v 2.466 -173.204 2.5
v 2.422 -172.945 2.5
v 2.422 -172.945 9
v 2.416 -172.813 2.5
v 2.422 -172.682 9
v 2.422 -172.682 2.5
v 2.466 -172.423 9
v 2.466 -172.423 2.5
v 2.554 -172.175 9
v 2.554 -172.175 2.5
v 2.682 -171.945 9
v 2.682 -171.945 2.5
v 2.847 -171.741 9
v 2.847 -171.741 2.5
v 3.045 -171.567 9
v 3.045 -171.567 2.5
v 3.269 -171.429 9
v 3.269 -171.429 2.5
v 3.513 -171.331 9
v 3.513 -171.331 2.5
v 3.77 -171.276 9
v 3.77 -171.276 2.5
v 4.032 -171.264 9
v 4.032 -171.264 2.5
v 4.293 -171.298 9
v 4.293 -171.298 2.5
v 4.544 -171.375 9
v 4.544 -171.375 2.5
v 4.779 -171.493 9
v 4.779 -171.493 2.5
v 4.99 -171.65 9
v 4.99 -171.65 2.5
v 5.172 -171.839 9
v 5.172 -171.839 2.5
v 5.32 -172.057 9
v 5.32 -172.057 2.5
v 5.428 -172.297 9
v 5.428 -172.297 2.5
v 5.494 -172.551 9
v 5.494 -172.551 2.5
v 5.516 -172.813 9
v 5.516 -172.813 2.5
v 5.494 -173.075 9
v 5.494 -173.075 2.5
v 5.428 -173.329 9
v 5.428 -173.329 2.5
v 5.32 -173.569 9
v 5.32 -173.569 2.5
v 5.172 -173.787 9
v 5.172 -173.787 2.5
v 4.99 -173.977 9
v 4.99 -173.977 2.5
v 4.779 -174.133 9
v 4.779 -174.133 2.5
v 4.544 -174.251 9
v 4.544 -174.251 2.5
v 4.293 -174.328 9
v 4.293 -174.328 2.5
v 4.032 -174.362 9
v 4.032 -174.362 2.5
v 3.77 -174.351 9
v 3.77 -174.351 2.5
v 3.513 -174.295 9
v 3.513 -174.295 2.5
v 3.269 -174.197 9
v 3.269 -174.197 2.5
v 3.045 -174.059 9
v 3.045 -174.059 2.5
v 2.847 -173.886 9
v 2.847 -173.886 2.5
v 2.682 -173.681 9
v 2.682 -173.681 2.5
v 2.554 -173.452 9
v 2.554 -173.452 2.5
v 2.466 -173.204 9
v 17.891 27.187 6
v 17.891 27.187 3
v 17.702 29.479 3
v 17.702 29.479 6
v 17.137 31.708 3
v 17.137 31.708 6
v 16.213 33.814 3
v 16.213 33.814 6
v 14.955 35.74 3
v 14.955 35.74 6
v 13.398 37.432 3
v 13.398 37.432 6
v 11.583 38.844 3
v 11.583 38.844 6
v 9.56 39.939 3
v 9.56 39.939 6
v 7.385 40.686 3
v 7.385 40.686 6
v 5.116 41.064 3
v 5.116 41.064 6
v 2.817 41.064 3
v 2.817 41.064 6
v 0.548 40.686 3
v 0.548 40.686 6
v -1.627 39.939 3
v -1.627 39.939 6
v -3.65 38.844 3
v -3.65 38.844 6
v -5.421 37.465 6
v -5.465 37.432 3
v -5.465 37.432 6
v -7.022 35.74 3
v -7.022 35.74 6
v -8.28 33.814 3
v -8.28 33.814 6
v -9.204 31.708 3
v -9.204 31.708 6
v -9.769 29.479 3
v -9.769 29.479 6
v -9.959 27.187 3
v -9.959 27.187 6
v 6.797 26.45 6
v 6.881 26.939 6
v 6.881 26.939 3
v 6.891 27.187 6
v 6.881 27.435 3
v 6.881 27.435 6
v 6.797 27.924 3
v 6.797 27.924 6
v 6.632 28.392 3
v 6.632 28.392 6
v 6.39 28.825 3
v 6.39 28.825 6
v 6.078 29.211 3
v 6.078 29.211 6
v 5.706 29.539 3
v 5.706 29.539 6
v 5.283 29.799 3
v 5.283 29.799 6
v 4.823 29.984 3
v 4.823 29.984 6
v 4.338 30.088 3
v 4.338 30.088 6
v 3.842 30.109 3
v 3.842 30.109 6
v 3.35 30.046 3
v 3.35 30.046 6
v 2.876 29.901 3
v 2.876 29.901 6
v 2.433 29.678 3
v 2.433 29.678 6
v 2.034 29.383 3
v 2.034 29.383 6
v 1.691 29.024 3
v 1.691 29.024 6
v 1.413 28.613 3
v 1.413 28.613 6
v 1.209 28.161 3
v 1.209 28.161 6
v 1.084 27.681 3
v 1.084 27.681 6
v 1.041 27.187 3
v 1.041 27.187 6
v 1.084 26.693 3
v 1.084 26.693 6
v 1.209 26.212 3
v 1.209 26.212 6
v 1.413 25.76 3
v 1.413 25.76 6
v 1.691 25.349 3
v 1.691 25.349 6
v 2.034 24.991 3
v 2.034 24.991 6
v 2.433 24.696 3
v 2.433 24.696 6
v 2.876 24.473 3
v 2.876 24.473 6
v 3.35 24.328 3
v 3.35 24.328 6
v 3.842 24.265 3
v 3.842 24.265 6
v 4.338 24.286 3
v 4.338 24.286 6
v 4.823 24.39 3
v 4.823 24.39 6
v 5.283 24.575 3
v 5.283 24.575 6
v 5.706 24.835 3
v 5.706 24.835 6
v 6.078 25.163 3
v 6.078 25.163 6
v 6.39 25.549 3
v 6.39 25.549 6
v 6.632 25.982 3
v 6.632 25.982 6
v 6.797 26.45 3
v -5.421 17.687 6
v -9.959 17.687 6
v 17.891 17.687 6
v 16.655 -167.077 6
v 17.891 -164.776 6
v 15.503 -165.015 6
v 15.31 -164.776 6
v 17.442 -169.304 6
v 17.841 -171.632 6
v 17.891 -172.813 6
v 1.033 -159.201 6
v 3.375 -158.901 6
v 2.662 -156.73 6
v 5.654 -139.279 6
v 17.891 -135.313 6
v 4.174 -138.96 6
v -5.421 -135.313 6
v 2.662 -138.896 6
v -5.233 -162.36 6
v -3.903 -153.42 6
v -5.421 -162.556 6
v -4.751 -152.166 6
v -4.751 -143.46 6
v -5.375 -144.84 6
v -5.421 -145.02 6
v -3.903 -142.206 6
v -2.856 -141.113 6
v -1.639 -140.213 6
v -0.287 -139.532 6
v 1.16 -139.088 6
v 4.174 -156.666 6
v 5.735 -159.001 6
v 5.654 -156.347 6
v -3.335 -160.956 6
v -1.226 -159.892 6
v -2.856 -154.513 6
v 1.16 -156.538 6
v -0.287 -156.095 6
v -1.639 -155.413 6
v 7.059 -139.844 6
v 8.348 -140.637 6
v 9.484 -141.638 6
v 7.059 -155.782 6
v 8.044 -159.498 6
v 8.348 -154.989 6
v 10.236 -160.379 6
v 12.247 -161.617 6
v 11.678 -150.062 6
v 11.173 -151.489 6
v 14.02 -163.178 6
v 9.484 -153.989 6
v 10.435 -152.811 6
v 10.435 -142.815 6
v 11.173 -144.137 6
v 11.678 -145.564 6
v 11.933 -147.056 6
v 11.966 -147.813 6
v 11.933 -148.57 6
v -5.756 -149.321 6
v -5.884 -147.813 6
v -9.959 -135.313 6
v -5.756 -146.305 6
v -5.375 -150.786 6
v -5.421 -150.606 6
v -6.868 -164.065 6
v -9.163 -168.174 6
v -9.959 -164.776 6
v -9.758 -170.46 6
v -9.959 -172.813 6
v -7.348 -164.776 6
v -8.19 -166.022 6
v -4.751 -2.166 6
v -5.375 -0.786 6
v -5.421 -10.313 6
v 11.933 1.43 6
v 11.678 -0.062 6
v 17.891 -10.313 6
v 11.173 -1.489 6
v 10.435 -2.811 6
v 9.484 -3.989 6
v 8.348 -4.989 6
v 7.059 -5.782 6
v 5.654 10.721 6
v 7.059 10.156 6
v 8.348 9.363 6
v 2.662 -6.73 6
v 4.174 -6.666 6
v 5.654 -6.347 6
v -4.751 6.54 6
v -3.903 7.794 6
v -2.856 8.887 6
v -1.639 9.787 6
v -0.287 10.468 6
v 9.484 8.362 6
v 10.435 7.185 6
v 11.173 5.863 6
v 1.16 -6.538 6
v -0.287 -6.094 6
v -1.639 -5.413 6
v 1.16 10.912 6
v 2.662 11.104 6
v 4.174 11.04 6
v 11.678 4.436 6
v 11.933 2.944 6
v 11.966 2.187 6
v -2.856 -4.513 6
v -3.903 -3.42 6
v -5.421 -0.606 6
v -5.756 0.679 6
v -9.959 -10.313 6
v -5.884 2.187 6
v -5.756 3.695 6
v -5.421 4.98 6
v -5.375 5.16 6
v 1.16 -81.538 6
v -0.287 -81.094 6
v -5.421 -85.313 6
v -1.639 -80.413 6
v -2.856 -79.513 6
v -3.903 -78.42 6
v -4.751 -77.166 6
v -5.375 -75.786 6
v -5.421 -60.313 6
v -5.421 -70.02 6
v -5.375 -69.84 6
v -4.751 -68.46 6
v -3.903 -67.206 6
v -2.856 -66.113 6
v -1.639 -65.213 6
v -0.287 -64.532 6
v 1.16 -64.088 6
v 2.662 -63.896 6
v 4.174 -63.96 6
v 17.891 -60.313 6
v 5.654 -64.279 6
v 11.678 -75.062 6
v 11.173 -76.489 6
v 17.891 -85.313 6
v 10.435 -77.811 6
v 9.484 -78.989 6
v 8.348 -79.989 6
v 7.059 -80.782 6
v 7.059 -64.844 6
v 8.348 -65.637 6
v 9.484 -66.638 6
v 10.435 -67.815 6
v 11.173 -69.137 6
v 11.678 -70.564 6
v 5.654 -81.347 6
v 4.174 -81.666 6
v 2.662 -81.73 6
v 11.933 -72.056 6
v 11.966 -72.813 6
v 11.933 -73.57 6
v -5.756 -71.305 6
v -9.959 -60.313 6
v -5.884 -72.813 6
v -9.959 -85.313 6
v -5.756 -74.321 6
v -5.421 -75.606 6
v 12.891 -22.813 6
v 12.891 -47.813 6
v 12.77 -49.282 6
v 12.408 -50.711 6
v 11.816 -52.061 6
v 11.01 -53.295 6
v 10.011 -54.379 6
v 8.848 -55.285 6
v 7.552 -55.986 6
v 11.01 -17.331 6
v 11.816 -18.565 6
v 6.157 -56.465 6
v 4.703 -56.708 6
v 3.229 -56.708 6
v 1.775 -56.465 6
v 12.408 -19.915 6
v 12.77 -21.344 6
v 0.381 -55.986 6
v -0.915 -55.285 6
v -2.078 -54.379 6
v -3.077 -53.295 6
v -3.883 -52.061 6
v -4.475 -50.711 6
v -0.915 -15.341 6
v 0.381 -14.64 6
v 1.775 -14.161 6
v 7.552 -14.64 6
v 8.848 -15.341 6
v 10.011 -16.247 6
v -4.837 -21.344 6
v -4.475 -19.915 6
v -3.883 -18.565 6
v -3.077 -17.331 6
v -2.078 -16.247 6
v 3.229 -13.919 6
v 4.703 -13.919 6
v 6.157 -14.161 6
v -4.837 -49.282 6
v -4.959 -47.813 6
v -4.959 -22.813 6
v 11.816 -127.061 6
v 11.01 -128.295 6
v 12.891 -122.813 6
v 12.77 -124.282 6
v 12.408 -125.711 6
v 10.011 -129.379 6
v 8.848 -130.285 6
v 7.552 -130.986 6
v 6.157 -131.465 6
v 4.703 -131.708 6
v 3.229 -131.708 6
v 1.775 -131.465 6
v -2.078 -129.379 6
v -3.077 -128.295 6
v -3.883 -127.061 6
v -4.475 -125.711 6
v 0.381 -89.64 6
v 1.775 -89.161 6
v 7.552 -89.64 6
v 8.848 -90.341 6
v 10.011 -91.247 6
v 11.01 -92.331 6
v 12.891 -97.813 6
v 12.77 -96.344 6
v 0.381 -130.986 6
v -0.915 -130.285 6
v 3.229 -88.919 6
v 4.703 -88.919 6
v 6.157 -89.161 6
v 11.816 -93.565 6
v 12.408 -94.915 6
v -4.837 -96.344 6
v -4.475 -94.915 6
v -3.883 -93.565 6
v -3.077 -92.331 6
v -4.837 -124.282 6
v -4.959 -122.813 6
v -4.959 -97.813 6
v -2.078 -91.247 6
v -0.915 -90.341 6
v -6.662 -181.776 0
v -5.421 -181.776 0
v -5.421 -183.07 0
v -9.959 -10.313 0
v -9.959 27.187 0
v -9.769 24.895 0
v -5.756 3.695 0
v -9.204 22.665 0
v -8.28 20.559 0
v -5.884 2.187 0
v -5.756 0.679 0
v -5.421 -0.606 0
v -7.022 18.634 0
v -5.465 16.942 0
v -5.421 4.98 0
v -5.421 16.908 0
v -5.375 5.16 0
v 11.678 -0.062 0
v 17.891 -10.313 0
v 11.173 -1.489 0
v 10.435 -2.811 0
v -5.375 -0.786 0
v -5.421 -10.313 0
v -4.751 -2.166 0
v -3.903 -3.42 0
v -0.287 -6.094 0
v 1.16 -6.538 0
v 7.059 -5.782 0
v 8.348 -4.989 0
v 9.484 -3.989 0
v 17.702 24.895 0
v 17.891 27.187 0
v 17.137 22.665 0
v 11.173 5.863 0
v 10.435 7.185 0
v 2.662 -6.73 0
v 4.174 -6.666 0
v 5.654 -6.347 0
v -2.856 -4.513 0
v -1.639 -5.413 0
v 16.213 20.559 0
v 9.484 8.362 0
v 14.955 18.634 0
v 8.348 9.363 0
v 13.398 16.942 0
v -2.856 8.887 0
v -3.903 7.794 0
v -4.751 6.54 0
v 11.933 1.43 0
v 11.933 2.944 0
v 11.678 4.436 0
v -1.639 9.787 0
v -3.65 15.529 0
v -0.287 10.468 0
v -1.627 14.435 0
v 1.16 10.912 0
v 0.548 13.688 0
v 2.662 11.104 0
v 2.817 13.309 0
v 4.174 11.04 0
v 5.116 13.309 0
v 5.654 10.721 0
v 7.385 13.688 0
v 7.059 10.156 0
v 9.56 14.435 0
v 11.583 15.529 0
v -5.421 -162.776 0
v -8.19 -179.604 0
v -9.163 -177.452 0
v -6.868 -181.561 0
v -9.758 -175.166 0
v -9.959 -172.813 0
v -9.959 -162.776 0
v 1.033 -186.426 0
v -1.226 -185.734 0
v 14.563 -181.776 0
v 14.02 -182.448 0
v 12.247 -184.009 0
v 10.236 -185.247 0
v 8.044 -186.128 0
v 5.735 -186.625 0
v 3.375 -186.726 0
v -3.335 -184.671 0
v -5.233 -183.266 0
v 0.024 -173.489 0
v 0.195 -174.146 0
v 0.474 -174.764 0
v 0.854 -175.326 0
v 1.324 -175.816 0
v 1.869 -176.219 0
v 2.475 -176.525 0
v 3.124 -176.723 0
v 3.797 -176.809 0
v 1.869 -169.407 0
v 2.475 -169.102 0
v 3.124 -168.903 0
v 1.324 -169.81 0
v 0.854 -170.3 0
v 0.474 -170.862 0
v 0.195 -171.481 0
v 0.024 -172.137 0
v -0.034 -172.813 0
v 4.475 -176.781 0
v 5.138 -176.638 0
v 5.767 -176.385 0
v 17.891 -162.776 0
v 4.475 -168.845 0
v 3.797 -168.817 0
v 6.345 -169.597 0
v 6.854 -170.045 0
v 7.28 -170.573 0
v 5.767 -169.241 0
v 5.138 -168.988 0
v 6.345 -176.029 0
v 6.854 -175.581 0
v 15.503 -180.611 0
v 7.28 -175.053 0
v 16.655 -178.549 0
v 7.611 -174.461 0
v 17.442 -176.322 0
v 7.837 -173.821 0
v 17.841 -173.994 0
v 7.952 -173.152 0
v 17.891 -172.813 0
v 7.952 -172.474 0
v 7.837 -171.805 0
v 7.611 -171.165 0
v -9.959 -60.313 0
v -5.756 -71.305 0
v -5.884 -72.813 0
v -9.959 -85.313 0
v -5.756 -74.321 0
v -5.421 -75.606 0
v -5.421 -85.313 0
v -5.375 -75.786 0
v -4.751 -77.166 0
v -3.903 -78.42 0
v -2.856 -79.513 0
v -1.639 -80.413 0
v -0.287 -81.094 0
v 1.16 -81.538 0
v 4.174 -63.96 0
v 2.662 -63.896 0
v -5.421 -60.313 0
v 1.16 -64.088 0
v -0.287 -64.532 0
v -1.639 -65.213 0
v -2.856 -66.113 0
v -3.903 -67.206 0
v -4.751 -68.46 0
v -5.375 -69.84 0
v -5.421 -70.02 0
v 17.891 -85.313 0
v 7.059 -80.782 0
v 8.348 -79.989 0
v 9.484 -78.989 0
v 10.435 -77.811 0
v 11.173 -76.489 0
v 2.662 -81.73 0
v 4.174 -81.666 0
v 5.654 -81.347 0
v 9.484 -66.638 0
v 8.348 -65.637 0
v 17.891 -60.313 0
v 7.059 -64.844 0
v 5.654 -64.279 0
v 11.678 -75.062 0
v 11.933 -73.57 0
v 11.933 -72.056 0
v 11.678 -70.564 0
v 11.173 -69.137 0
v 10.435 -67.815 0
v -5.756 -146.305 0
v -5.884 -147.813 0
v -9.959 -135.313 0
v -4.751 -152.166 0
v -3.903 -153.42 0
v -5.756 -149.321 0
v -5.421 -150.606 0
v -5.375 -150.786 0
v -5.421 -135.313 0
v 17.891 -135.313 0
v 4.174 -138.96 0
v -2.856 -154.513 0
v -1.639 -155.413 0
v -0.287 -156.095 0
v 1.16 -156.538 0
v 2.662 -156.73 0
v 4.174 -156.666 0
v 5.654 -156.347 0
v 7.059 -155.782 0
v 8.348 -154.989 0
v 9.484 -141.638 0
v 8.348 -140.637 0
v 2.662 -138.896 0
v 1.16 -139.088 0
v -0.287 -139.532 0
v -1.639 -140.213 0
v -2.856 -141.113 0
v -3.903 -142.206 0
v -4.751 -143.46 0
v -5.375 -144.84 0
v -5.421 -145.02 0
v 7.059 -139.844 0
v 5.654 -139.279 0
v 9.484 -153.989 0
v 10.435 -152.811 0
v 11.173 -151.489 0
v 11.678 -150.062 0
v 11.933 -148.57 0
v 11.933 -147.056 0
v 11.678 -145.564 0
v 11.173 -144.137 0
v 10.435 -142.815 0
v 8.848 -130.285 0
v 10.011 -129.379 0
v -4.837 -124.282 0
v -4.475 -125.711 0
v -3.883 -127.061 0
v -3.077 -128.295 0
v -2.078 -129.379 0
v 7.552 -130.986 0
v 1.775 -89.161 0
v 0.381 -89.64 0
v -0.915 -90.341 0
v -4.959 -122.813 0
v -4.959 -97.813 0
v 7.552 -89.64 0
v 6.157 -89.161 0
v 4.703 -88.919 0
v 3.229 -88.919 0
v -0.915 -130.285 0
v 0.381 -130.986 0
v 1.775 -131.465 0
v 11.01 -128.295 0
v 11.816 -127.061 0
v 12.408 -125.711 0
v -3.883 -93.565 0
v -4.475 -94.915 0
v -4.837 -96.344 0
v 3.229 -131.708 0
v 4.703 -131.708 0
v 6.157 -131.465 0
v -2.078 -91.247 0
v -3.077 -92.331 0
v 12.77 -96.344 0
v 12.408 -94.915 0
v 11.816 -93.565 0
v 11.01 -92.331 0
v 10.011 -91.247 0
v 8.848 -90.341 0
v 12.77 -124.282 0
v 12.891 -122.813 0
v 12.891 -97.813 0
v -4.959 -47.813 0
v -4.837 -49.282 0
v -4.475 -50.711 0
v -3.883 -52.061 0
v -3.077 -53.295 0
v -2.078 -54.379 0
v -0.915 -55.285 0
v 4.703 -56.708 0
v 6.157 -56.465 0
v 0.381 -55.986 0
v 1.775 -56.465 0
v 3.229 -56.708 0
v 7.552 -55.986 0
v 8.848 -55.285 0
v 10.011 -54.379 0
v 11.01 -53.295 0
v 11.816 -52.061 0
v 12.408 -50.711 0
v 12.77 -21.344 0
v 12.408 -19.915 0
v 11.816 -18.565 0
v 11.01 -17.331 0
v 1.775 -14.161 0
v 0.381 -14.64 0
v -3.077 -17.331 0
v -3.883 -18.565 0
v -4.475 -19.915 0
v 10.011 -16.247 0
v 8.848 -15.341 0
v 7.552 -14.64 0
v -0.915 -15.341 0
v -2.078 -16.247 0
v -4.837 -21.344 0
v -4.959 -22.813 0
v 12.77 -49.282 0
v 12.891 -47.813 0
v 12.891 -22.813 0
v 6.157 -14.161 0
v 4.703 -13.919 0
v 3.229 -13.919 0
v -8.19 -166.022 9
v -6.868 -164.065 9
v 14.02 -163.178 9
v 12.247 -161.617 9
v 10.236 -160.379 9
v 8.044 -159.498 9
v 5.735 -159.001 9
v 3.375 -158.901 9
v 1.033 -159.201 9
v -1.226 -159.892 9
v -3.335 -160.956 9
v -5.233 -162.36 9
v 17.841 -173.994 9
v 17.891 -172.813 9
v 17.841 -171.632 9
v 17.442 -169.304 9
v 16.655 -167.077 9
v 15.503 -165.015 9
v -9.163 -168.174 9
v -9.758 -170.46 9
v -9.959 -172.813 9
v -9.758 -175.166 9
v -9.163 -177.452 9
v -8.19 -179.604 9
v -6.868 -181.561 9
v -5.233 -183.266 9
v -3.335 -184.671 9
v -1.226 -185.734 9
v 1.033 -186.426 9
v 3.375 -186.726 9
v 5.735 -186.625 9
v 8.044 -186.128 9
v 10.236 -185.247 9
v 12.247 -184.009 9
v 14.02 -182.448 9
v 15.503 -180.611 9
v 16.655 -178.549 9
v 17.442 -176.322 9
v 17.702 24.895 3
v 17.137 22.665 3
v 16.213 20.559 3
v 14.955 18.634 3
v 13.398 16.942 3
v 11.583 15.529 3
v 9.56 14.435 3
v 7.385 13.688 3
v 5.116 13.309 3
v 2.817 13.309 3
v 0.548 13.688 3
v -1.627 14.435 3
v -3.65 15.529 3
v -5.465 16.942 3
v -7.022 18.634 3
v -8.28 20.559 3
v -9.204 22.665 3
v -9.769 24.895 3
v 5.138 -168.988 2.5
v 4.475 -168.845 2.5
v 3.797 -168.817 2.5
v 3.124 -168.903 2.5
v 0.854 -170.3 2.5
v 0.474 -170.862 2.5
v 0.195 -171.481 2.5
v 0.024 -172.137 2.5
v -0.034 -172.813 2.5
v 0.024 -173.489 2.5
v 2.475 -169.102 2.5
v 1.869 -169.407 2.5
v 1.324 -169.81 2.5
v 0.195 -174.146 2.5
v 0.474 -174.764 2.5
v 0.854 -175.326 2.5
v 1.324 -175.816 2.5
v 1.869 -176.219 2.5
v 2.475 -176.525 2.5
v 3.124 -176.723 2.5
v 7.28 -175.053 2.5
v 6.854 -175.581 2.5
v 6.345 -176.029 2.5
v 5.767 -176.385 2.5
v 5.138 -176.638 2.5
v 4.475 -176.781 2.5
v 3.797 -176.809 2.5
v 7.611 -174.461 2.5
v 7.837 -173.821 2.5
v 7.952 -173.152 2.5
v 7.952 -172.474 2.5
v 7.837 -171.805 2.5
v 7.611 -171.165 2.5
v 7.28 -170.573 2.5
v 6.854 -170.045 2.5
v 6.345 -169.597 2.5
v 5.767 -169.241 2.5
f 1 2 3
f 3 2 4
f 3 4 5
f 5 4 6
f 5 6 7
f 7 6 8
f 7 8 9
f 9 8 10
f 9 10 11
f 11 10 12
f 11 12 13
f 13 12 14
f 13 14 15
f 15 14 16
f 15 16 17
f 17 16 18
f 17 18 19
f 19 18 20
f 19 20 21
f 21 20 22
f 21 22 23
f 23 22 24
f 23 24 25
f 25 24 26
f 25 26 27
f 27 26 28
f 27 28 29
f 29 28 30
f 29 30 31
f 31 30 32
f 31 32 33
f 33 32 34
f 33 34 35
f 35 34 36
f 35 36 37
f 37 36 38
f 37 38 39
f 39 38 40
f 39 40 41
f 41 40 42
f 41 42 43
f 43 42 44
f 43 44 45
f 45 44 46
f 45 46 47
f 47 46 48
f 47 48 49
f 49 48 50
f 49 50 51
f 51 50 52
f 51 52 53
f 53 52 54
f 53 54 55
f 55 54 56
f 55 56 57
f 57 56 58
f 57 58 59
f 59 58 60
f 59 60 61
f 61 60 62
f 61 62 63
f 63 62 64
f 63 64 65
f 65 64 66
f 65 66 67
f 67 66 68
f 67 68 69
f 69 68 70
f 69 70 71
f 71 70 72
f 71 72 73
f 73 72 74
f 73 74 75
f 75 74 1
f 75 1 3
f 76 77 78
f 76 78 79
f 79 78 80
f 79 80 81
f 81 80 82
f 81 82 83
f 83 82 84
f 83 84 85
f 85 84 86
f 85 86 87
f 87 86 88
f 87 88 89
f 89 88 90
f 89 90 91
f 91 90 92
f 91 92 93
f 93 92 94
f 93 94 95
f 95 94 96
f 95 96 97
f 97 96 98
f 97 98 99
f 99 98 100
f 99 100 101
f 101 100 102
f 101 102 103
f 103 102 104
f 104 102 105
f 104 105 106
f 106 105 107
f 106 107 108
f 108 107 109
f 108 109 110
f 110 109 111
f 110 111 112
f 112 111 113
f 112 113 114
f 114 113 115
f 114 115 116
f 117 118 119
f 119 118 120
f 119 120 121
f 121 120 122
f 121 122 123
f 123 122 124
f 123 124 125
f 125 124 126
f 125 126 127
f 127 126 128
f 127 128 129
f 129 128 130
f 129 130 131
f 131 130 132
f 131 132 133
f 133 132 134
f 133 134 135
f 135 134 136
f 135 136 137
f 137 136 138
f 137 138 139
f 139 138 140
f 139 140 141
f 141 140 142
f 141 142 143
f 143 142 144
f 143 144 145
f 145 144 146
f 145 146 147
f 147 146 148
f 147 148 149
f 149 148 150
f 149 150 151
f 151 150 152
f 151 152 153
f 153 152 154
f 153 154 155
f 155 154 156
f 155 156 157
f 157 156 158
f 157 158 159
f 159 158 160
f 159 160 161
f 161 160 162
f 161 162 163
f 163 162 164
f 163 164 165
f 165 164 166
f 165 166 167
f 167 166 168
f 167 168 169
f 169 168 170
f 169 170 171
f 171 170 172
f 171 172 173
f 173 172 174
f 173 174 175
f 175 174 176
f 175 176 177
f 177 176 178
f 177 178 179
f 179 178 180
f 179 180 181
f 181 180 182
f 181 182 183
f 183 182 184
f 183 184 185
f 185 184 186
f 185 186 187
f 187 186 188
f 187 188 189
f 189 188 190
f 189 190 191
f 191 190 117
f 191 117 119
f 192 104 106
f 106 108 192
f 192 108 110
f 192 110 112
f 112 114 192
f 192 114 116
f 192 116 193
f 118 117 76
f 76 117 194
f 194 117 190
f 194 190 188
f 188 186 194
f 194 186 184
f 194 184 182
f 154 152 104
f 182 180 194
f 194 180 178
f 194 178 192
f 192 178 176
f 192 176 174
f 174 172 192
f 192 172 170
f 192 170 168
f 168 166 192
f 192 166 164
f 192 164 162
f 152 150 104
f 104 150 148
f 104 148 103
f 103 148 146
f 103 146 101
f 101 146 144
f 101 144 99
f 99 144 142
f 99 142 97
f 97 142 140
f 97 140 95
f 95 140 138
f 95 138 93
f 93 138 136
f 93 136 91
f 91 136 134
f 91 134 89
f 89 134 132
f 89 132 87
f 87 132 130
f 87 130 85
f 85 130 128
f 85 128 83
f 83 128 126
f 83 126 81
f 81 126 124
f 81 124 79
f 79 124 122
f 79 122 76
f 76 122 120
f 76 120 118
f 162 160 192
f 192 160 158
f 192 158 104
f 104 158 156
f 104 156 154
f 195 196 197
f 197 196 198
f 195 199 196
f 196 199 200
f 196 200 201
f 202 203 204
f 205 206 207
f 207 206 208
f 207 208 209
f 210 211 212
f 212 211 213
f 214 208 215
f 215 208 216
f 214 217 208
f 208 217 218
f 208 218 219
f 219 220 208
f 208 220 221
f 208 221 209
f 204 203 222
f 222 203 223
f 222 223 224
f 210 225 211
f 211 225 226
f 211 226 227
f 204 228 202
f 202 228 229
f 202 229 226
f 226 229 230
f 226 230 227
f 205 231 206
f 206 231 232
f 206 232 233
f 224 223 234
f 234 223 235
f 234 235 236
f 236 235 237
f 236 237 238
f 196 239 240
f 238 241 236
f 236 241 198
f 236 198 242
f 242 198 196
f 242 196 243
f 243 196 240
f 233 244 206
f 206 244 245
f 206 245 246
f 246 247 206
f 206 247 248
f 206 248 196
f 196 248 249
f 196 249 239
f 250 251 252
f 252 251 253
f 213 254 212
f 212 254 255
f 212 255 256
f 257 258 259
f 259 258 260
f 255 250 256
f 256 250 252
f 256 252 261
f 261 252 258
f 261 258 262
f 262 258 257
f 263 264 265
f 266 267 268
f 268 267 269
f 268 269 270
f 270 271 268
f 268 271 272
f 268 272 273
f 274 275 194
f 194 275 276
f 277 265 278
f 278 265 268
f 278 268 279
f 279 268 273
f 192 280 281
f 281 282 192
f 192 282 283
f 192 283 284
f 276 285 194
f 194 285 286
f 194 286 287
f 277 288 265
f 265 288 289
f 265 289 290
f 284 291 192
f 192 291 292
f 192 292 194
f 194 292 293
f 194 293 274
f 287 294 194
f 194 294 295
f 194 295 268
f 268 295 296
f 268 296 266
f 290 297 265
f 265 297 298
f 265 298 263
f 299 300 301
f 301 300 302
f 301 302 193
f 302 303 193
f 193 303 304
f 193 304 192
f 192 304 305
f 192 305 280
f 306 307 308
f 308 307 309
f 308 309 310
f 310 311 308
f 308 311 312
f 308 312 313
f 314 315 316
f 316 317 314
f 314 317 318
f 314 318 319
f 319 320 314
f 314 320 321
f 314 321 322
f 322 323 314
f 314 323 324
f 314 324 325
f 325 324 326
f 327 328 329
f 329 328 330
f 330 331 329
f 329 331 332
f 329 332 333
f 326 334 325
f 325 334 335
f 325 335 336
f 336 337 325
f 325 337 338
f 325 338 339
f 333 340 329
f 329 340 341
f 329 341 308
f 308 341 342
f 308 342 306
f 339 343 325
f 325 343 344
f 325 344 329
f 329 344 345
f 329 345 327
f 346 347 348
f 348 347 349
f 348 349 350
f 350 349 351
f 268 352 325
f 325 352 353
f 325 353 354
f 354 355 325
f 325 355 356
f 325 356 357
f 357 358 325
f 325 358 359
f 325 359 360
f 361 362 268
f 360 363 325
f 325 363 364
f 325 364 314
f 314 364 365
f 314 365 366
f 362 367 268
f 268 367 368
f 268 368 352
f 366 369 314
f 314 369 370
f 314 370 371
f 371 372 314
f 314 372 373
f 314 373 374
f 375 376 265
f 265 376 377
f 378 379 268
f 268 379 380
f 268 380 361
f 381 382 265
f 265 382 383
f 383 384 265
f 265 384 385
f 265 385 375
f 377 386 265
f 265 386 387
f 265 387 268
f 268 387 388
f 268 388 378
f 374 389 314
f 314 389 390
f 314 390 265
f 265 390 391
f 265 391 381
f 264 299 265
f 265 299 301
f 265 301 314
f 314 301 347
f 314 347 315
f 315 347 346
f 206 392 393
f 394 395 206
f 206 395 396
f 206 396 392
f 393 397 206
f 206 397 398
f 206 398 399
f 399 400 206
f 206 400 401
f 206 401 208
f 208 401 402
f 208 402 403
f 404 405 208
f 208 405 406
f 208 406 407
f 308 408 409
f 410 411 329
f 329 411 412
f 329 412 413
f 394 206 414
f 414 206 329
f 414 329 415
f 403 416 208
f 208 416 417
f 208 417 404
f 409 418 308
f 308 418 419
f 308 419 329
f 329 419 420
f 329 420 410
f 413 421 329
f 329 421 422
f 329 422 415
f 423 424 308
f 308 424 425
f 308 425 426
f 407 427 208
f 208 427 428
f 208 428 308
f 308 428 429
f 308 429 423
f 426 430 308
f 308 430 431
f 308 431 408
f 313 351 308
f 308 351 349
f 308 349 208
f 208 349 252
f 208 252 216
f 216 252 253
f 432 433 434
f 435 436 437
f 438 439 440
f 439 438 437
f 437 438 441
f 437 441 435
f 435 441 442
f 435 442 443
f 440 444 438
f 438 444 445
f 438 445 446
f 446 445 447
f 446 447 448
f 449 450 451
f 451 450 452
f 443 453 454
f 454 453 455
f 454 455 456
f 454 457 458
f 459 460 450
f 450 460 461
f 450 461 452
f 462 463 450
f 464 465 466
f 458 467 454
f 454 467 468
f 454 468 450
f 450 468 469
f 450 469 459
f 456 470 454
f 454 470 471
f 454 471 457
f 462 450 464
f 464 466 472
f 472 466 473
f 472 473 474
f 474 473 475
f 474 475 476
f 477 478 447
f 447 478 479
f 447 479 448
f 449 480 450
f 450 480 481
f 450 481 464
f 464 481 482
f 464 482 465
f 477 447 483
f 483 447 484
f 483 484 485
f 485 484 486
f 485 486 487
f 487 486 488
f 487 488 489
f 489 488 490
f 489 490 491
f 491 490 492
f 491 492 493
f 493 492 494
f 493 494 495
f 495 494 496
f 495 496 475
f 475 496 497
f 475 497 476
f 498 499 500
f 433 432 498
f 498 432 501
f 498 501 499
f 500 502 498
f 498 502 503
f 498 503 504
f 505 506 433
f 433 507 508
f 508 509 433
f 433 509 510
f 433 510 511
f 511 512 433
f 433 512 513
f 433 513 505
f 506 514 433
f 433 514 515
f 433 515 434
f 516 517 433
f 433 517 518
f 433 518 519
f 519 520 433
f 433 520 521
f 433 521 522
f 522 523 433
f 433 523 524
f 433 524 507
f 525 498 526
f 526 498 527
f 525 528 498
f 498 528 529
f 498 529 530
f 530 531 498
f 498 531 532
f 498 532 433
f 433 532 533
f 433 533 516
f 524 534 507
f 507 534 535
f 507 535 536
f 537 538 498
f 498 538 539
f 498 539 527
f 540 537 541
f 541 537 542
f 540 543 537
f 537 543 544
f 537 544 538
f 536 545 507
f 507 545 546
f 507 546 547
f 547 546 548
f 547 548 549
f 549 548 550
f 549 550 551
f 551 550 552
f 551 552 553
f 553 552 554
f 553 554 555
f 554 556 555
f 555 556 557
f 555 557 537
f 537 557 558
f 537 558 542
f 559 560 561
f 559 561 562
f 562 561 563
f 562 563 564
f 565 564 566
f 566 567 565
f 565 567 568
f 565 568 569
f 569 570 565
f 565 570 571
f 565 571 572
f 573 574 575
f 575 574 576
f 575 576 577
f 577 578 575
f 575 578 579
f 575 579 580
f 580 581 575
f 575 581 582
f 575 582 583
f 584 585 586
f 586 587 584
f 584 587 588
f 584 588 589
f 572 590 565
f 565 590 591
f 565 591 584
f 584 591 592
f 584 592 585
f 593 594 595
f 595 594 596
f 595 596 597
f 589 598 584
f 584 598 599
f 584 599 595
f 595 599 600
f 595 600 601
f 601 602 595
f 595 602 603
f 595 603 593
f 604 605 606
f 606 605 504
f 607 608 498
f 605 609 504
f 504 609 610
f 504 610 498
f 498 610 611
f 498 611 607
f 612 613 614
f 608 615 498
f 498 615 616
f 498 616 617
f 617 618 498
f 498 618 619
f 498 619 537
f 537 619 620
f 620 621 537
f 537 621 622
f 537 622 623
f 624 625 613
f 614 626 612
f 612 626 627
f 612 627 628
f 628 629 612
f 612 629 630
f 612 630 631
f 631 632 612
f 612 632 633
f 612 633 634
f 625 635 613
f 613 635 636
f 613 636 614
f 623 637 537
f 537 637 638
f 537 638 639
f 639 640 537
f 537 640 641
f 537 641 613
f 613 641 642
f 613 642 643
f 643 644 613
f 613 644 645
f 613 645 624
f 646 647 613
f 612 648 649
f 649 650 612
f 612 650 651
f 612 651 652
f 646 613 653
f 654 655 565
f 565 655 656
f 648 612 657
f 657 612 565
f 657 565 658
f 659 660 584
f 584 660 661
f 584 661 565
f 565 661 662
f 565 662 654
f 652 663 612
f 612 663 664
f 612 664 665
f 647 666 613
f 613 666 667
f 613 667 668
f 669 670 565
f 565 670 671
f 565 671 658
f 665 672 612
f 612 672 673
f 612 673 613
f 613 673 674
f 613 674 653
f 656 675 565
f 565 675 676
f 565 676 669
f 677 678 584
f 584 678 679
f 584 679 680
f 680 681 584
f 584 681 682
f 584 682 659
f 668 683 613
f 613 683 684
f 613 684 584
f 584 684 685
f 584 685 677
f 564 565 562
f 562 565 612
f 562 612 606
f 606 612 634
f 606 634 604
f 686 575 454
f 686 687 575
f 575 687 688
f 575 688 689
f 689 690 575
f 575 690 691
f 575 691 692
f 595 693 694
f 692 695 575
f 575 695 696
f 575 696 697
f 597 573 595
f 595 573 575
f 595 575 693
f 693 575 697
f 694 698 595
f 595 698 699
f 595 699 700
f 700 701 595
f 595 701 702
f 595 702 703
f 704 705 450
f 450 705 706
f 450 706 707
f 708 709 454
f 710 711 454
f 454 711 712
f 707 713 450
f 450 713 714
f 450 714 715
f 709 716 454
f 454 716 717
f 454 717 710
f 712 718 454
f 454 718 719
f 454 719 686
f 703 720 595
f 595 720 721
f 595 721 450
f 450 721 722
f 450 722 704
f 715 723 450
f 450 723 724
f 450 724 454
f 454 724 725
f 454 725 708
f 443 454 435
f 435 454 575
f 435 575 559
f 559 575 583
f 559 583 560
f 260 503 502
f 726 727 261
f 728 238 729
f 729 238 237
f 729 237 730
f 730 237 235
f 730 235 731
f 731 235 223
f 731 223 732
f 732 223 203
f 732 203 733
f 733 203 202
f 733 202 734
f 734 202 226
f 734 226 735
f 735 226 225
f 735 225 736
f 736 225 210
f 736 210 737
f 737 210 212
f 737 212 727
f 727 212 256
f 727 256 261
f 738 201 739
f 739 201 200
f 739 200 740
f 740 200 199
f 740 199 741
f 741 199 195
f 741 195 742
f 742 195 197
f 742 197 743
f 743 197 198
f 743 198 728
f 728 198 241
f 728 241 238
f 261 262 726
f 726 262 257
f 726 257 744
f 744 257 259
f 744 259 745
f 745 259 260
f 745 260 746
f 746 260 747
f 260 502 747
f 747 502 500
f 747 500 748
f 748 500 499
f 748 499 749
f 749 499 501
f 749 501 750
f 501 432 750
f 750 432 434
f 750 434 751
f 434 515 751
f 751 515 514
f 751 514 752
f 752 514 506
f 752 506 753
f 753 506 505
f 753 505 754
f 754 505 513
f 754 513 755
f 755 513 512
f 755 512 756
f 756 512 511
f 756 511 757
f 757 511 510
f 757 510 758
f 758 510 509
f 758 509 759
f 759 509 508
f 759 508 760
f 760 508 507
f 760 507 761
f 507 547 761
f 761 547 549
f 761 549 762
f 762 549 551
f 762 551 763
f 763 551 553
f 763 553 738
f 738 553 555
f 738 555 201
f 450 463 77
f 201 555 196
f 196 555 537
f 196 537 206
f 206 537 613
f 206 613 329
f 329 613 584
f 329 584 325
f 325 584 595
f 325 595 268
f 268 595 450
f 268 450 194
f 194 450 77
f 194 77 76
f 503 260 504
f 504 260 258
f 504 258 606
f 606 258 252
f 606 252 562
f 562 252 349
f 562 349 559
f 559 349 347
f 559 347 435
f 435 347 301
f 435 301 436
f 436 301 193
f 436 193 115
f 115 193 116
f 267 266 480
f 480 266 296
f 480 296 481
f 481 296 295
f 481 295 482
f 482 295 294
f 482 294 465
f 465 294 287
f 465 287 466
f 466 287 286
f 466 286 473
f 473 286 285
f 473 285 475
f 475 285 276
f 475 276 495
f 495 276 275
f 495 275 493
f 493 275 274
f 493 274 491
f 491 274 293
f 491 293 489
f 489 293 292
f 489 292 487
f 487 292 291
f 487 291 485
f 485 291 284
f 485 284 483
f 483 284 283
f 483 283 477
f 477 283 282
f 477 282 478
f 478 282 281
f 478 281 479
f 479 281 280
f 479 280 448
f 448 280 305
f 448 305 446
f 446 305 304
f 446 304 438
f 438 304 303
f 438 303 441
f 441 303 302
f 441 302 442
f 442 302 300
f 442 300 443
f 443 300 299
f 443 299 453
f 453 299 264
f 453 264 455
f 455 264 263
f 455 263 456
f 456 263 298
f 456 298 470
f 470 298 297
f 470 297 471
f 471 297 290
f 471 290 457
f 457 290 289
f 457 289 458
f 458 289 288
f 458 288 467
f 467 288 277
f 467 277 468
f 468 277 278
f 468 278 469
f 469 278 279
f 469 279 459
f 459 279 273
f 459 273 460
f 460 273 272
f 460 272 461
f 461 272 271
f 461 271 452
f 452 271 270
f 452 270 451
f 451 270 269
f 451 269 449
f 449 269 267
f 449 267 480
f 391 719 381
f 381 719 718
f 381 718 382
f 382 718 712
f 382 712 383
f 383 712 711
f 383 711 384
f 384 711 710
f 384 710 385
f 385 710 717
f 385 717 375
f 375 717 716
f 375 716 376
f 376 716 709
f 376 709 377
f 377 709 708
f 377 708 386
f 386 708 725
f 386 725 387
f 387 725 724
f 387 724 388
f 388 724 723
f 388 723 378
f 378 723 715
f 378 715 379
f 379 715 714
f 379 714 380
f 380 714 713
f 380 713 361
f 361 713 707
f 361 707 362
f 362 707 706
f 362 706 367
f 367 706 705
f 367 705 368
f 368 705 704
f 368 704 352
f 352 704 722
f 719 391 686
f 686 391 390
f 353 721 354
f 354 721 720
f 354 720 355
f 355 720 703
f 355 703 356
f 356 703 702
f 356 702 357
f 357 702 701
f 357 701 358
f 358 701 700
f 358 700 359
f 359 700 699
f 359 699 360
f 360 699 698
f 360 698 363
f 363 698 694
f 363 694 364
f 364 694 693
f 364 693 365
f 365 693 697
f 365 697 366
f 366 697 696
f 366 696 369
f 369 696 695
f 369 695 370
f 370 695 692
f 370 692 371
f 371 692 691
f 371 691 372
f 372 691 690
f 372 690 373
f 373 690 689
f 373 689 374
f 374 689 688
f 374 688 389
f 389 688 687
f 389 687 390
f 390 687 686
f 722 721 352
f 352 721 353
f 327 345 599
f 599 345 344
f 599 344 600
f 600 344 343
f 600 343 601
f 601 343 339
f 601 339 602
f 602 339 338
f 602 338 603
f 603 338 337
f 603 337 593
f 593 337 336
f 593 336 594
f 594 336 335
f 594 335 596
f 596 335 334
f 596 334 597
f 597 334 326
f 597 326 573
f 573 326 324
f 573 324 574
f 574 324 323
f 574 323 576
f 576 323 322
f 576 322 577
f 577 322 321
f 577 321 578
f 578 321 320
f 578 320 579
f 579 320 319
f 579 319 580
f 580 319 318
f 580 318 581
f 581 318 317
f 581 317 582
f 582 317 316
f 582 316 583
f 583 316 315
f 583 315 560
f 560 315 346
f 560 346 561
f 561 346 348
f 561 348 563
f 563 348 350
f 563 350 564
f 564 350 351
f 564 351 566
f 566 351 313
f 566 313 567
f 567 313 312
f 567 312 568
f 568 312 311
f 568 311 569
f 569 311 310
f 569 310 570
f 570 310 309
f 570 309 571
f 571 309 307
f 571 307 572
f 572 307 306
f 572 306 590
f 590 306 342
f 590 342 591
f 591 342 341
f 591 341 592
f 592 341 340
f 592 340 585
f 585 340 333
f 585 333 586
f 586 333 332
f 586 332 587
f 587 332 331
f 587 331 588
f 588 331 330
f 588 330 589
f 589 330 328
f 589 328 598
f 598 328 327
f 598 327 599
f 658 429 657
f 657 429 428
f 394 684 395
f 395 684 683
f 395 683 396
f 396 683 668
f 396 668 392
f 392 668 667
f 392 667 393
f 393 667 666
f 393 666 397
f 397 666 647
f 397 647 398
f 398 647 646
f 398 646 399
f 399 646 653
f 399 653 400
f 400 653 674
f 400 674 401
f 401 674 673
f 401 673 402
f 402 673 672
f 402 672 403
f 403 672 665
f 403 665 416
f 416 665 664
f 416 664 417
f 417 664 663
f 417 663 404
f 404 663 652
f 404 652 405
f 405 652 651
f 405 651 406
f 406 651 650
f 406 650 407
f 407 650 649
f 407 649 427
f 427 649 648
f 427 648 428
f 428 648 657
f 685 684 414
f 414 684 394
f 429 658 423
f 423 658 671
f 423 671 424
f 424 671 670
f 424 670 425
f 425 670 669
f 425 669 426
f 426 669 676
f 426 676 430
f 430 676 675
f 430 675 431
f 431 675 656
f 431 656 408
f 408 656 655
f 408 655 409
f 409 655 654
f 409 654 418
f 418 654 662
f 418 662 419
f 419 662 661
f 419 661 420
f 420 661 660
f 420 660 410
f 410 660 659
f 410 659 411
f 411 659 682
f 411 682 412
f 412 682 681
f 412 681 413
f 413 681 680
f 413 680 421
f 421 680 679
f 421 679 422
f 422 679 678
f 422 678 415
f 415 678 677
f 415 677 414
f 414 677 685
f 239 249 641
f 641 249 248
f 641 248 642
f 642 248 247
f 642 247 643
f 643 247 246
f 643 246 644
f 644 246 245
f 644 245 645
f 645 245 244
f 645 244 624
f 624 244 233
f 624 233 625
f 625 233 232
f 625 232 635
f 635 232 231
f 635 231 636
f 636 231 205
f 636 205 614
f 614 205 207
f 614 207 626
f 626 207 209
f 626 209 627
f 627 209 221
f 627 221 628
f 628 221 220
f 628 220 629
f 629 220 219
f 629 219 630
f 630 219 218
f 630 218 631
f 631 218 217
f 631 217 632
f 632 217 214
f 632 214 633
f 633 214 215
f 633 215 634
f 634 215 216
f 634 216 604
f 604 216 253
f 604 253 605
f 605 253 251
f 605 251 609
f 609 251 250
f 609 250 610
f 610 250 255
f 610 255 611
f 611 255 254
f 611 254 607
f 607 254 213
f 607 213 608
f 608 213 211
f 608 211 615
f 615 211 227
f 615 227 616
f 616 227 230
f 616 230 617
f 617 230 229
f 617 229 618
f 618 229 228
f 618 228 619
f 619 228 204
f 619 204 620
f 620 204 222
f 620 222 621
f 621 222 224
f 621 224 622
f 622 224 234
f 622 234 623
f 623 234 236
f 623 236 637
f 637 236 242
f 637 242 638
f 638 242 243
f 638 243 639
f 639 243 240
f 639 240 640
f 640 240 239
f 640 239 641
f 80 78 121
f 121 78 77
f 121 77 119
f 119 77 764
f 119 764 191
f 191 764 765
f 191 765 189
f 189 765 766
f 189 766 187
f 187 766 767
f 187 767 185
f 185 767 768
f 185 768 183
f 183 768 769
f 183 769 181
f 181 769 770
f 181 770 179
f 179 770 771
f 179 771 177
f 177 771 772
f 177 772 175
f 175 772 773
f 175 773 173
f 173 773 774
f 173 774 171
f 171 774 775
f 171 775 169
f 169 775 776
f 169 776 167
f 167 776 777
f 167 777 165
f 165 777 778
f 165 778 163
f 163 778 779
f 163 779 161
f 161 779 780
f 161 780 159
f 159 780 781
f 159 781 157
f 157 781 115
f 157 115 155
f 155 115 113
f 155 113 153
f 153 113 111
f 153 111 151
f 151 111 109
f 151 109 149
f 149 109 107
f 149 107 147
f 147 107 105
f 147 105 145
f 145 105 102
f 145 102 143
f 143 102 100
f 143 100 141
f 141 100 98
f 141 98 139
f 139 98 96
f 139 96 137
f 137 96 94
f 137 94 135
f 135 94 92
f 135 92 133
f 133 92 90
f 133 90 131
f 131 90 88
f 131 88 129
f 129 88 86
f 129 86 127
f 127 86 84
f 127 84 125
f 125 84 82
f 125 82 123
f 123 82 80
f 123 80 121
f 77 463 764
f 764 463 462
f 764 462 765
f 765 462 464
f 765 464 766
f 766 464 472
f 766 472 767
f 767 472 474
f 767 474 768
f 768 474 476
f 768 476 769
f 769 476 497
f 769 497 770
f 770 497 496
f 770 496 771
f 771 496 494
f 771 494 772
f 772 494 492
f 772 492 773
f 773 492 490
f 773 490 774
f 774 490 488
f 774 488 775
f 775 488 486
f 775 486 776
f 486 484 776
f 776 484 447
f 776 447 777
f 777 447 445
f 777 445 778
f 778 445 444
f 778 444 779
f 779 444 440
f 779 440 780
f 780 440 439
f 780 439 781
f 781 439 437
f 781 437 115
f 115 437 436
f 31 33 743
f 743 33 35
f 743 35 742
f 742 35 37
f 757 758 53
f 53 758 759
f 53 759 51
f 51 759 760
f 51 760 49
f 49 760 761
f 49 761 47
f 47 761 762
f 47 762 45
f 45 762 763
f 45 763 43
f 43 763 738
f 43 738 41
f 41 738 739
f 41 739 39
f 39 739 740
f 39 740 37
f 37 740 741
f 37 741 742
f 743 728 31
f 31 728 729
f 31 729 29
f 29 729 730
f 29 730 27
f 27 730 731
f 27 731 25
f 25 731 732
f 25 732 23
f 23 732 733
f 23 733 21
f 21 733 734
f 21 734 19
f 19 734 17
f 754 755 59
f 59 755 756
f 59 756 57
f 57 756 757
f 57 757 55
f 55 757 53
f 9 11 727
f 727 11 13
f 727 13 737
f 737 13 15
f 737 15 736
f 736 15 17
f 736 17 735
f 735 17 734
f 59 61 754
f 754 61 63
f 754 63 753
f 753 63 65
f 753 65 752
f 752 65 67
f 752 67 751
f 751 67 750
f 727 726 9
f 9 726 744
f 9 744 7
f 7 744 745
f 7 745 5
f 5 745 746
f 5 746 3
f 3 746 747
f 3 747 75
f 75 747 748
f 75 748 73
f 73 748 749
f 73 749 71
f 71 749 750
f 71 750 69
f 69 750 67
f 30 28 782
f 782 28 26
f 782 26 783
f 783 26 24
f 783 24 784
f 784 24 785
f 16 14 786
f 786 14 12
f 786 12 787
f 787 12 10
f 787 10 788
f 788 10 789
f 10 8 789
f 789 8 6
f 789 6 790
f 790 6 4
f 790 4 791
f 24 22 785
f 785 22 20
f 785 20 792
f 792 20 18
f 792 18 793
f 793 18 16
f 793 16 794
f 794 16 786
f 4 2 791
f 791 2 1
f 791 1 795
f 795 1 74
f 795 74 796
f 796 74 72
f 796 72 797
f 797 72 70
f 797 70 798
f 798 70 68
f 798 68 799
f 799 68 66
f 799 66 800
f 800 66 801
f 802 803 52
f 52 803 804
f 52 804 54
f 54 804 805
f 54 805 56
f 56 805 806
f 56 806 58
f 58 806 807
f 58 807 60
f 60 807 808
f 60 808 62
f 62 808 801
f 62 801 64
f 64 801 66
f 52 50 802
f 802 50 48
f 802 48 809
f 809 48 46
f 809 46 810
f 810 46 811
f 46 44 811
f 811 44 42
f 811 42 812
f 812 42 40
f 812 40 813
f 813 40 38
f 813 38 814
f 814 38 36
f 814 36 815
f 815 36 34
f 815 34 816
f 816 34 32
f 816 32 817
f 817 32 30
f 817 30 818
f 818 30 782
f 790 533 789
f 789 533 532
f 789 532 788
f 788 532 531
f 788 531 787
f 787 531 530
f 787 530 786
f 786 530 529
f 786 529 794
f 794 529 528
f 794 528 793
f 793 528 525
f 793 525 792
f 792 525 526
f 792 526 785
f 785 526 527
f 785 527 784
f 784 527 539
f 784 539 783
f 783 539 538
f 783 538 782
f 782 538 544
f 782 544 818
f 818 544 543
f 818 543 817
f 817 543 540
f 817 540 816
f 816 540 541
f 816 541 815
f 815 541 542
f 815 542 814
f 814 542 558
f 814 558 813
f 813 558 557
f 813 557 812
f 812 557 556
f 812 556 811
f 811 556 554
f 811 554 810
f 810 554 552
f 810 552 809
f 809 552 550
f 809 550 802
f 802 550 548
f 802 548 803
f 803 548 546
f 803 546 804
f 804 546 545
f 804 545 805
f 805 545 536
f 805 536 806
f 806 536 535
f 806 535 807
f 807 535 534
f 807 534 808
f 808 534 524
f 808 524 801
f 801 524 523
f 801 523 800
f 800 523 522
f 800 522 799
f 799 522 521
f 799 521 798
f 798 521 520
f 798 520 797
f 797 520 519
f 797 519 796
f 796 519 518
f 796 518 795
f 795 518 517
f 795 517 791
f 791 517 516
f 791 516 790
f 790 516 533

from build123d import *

# Parameters (mm, degrees)
ESQUISSE1_W             = 27.85
ESQUISSE1_H             = 200
BOSS_EXTRU_1_DEPTH      = 6
ENL_V_START             = -3
ESQUISSE2_R             = 13.925
ENL_V_MAT_EXTRU_1_DEPTH = 3
ESQUISSE3_R             = 1.55
ENL_V_MAT_EXTRU_2_DEPTH = 3
ESQUISSE6_R             = 8.925
ESQUISSE6_W             = 17.85
ESQUISSE6_H             = 25
ENL_V_MAT_EXTRU_4_DEPTH = 10
ESQUISSE7_R             = 2.925
ENL_V_MAT_EXTRU_5_DEPTH = 10
ESQUISSE4_R             = 13.925
ENL_V_MAT_EXTRU_6_DEPTH = 3
ESQUISSE8_R             = 13.925
ESQUISSE8_R_2           = 1.55
BOSS_EXTRU_2_DEPTH      = 6
ESQUISSE9_R             = 4
ENL_V_MAT_EXTRU_7_DEPTH = 2.5


with BuildPart() as part:
    # Esquisse1 → Boss.-Extru.1 (new body)
    with BuildSketch(Plane.XY):
        with Locations((3.966452722, -72.813095238)):
            Rectangle(ESQUISSE1_W, ESQUISSE1_H)
        with BuildLine():
            Line((-9.958547278, -172.813095238), (17.891452722, -172.813095238))
            ThreePointArc((17.891452722, -172.813095238), (3.966452722, -186.738095238), (-9.958547278, -172.813095238))
        make_face()
        with BuildLine():
            Line((-9.958547278, 27.186904762), (17.891452722, 27.186904762))
            ThreePointArc((17.891452722, 27.186904762), (3.966452722, 41.111904762), (-9.958547278, 27.186904762))
        make_face()
    extrude(amount=BOSS_EXTRU_1_DEPTH)

    # Esquisse2 → Enlèv. mat.-Extru.1 (cut)
    with BuildSketch(Plane.XY.offset(6).offset(ENL_V_START)):
        with Locations((3.966452722, -172.813095238)):
            Circle(ESQUISSE2_R)
    extrude(amount=ENL_V_MAT_EXTRU_1_DEPTH, mode=Mode.SUBTRACT)

    # Esquisse3 → Enlèv. mat.-Extru.2 (cut)
    with BuildSketch(Plane.XY.offset(3)):
        with Locations((3.966452722, -172.813095238)):
            Circle(ESQUISSE3_R)
    extrude(amount=-ENL_V_MAT_EXTRU_2_DEPTH, mode=Mode.SUBTRACT)

    # Esquisse6 → Enlèv. mat.-Extru.4 (cut)
    with BuildSketch(Plane(origin=(0, 0, 0), x_dir=(-1, 0, 0), z_dir=(0, 0, -1))):
        with Locations((-3.040571359, 2.186904762)):
            Circle(ESQUISSE6_R)
        with BuildLine():
            ThreePointArc((-12.891452722, -22.813095238), (-3.966452722, -13.888095238), (4.958547278, -22.813095238))
            Line((4.958547278, -22.813095238), (-12.891452722, -22.813095238))
        make_face()
        with Locations((-3.966452722, -35.313095238)):
            Rectangle(ESQUISSE6_W, ESQUISSE6_H)
        with BuildLine():
            ThreePointArc((4.958547278, -47.813095238), (-3.966452722, -56.738095238), (-12.891452722, -47.813095238))
            Line((-12.891452722, -47.813095238), (4.958547278, -47.813095238))
        make_face()
        with Locations((-3.040571359, -72.813095238)):
            Circle(ESQUISSE6_R)
        with Locations((-3.966452722, -110.313095238)):
            Rectangle(ESQUISSE6_W, ESQUISSE6_H)
        with BuildLine():
            ThreePointArc((-12.891452722, -97.813095238), (-3.966452722, -88.888095238), (4.958547278, -97.813095238))
            Line((4.958547278, -97.813095238), (-12.891452722, -97.813095238))
        make_face()
        with BuildLine():
            ThreePointArc((4.958547278, -122.813095238), (-3.966452722, -131.738095238), (-12.891452722, -122.813095238))
            Line((-12.891452722, -122.813095238), (4.958547278, -122.813095238))
        make_face()
        with Locations((-3.040571359, -147.813095238)):
            Circle(ESQUISSE6_R)
    extrude(amount=-ENL_V_MAT_EXTRU_4_DEPTH, mode=Mode.SUBTRACT)

    # Esquisse7 → Enlèv. mat.-Extru.5 (cut)
    with BuildSketch(Plane(origin=(0, 0, 0), x_dir=(-1, 0, 0), z_dir=(0, 0, -1))):
        with Locations((-3.966452722, 27.186904762)):
            Circle(ESQUISSE7_R)
    extrude(amount=-ENL_V_MAT_EXTRU_5_DEPTH, mode=Mode.SUBTRACT)

    # Esquisse4 → Enlèv. mat.-Extru.6 (cut)
    with BuildSketch(Plane(origin=(0, 0, 0), x_dir=(-1, 0, 0), z_dir=(0, 0, -1))):
        with Locations((-3.966452722, 27.186904762)):
            Circle(ESQUISSE4_R)
    extrude(amount=-ENL_V_MAT_EXTRU_6_DEPTH, mode=Mode.SUBTRACT)

    # Esquisse8 → Boss.-Extru.2 (add)
    with BuildSketch(Plane.XY.offset(3)):
        with Locations((3.966452722, -172.813095238)):
            Circle(ESQUISSE8_R)
        with Locations((3.966452722, -172.813095238)):
            Circle(ESQUISSE8_R_2, mode=Mode.SUBTRACT)
    extrude(amount=BOSS_EXTRU_2_DEPTH)

    # Esquisse9 → Enlèv. mat.-Extru.7 (cut)
    with BuildSketch(Plane(origin=(0, 0, 0), x_dir=(-1, 0, 0), z_dir=(0, 0, -1))):
        with Locations((-3.966452722, -172.813095238)):
            Circle(ESQUISSE9_R)
    extrude(amount=-ENL_V_MAT_EXTRU_7_DEPTH, mode=Mode.SUBTRACT)


solid = part.part
